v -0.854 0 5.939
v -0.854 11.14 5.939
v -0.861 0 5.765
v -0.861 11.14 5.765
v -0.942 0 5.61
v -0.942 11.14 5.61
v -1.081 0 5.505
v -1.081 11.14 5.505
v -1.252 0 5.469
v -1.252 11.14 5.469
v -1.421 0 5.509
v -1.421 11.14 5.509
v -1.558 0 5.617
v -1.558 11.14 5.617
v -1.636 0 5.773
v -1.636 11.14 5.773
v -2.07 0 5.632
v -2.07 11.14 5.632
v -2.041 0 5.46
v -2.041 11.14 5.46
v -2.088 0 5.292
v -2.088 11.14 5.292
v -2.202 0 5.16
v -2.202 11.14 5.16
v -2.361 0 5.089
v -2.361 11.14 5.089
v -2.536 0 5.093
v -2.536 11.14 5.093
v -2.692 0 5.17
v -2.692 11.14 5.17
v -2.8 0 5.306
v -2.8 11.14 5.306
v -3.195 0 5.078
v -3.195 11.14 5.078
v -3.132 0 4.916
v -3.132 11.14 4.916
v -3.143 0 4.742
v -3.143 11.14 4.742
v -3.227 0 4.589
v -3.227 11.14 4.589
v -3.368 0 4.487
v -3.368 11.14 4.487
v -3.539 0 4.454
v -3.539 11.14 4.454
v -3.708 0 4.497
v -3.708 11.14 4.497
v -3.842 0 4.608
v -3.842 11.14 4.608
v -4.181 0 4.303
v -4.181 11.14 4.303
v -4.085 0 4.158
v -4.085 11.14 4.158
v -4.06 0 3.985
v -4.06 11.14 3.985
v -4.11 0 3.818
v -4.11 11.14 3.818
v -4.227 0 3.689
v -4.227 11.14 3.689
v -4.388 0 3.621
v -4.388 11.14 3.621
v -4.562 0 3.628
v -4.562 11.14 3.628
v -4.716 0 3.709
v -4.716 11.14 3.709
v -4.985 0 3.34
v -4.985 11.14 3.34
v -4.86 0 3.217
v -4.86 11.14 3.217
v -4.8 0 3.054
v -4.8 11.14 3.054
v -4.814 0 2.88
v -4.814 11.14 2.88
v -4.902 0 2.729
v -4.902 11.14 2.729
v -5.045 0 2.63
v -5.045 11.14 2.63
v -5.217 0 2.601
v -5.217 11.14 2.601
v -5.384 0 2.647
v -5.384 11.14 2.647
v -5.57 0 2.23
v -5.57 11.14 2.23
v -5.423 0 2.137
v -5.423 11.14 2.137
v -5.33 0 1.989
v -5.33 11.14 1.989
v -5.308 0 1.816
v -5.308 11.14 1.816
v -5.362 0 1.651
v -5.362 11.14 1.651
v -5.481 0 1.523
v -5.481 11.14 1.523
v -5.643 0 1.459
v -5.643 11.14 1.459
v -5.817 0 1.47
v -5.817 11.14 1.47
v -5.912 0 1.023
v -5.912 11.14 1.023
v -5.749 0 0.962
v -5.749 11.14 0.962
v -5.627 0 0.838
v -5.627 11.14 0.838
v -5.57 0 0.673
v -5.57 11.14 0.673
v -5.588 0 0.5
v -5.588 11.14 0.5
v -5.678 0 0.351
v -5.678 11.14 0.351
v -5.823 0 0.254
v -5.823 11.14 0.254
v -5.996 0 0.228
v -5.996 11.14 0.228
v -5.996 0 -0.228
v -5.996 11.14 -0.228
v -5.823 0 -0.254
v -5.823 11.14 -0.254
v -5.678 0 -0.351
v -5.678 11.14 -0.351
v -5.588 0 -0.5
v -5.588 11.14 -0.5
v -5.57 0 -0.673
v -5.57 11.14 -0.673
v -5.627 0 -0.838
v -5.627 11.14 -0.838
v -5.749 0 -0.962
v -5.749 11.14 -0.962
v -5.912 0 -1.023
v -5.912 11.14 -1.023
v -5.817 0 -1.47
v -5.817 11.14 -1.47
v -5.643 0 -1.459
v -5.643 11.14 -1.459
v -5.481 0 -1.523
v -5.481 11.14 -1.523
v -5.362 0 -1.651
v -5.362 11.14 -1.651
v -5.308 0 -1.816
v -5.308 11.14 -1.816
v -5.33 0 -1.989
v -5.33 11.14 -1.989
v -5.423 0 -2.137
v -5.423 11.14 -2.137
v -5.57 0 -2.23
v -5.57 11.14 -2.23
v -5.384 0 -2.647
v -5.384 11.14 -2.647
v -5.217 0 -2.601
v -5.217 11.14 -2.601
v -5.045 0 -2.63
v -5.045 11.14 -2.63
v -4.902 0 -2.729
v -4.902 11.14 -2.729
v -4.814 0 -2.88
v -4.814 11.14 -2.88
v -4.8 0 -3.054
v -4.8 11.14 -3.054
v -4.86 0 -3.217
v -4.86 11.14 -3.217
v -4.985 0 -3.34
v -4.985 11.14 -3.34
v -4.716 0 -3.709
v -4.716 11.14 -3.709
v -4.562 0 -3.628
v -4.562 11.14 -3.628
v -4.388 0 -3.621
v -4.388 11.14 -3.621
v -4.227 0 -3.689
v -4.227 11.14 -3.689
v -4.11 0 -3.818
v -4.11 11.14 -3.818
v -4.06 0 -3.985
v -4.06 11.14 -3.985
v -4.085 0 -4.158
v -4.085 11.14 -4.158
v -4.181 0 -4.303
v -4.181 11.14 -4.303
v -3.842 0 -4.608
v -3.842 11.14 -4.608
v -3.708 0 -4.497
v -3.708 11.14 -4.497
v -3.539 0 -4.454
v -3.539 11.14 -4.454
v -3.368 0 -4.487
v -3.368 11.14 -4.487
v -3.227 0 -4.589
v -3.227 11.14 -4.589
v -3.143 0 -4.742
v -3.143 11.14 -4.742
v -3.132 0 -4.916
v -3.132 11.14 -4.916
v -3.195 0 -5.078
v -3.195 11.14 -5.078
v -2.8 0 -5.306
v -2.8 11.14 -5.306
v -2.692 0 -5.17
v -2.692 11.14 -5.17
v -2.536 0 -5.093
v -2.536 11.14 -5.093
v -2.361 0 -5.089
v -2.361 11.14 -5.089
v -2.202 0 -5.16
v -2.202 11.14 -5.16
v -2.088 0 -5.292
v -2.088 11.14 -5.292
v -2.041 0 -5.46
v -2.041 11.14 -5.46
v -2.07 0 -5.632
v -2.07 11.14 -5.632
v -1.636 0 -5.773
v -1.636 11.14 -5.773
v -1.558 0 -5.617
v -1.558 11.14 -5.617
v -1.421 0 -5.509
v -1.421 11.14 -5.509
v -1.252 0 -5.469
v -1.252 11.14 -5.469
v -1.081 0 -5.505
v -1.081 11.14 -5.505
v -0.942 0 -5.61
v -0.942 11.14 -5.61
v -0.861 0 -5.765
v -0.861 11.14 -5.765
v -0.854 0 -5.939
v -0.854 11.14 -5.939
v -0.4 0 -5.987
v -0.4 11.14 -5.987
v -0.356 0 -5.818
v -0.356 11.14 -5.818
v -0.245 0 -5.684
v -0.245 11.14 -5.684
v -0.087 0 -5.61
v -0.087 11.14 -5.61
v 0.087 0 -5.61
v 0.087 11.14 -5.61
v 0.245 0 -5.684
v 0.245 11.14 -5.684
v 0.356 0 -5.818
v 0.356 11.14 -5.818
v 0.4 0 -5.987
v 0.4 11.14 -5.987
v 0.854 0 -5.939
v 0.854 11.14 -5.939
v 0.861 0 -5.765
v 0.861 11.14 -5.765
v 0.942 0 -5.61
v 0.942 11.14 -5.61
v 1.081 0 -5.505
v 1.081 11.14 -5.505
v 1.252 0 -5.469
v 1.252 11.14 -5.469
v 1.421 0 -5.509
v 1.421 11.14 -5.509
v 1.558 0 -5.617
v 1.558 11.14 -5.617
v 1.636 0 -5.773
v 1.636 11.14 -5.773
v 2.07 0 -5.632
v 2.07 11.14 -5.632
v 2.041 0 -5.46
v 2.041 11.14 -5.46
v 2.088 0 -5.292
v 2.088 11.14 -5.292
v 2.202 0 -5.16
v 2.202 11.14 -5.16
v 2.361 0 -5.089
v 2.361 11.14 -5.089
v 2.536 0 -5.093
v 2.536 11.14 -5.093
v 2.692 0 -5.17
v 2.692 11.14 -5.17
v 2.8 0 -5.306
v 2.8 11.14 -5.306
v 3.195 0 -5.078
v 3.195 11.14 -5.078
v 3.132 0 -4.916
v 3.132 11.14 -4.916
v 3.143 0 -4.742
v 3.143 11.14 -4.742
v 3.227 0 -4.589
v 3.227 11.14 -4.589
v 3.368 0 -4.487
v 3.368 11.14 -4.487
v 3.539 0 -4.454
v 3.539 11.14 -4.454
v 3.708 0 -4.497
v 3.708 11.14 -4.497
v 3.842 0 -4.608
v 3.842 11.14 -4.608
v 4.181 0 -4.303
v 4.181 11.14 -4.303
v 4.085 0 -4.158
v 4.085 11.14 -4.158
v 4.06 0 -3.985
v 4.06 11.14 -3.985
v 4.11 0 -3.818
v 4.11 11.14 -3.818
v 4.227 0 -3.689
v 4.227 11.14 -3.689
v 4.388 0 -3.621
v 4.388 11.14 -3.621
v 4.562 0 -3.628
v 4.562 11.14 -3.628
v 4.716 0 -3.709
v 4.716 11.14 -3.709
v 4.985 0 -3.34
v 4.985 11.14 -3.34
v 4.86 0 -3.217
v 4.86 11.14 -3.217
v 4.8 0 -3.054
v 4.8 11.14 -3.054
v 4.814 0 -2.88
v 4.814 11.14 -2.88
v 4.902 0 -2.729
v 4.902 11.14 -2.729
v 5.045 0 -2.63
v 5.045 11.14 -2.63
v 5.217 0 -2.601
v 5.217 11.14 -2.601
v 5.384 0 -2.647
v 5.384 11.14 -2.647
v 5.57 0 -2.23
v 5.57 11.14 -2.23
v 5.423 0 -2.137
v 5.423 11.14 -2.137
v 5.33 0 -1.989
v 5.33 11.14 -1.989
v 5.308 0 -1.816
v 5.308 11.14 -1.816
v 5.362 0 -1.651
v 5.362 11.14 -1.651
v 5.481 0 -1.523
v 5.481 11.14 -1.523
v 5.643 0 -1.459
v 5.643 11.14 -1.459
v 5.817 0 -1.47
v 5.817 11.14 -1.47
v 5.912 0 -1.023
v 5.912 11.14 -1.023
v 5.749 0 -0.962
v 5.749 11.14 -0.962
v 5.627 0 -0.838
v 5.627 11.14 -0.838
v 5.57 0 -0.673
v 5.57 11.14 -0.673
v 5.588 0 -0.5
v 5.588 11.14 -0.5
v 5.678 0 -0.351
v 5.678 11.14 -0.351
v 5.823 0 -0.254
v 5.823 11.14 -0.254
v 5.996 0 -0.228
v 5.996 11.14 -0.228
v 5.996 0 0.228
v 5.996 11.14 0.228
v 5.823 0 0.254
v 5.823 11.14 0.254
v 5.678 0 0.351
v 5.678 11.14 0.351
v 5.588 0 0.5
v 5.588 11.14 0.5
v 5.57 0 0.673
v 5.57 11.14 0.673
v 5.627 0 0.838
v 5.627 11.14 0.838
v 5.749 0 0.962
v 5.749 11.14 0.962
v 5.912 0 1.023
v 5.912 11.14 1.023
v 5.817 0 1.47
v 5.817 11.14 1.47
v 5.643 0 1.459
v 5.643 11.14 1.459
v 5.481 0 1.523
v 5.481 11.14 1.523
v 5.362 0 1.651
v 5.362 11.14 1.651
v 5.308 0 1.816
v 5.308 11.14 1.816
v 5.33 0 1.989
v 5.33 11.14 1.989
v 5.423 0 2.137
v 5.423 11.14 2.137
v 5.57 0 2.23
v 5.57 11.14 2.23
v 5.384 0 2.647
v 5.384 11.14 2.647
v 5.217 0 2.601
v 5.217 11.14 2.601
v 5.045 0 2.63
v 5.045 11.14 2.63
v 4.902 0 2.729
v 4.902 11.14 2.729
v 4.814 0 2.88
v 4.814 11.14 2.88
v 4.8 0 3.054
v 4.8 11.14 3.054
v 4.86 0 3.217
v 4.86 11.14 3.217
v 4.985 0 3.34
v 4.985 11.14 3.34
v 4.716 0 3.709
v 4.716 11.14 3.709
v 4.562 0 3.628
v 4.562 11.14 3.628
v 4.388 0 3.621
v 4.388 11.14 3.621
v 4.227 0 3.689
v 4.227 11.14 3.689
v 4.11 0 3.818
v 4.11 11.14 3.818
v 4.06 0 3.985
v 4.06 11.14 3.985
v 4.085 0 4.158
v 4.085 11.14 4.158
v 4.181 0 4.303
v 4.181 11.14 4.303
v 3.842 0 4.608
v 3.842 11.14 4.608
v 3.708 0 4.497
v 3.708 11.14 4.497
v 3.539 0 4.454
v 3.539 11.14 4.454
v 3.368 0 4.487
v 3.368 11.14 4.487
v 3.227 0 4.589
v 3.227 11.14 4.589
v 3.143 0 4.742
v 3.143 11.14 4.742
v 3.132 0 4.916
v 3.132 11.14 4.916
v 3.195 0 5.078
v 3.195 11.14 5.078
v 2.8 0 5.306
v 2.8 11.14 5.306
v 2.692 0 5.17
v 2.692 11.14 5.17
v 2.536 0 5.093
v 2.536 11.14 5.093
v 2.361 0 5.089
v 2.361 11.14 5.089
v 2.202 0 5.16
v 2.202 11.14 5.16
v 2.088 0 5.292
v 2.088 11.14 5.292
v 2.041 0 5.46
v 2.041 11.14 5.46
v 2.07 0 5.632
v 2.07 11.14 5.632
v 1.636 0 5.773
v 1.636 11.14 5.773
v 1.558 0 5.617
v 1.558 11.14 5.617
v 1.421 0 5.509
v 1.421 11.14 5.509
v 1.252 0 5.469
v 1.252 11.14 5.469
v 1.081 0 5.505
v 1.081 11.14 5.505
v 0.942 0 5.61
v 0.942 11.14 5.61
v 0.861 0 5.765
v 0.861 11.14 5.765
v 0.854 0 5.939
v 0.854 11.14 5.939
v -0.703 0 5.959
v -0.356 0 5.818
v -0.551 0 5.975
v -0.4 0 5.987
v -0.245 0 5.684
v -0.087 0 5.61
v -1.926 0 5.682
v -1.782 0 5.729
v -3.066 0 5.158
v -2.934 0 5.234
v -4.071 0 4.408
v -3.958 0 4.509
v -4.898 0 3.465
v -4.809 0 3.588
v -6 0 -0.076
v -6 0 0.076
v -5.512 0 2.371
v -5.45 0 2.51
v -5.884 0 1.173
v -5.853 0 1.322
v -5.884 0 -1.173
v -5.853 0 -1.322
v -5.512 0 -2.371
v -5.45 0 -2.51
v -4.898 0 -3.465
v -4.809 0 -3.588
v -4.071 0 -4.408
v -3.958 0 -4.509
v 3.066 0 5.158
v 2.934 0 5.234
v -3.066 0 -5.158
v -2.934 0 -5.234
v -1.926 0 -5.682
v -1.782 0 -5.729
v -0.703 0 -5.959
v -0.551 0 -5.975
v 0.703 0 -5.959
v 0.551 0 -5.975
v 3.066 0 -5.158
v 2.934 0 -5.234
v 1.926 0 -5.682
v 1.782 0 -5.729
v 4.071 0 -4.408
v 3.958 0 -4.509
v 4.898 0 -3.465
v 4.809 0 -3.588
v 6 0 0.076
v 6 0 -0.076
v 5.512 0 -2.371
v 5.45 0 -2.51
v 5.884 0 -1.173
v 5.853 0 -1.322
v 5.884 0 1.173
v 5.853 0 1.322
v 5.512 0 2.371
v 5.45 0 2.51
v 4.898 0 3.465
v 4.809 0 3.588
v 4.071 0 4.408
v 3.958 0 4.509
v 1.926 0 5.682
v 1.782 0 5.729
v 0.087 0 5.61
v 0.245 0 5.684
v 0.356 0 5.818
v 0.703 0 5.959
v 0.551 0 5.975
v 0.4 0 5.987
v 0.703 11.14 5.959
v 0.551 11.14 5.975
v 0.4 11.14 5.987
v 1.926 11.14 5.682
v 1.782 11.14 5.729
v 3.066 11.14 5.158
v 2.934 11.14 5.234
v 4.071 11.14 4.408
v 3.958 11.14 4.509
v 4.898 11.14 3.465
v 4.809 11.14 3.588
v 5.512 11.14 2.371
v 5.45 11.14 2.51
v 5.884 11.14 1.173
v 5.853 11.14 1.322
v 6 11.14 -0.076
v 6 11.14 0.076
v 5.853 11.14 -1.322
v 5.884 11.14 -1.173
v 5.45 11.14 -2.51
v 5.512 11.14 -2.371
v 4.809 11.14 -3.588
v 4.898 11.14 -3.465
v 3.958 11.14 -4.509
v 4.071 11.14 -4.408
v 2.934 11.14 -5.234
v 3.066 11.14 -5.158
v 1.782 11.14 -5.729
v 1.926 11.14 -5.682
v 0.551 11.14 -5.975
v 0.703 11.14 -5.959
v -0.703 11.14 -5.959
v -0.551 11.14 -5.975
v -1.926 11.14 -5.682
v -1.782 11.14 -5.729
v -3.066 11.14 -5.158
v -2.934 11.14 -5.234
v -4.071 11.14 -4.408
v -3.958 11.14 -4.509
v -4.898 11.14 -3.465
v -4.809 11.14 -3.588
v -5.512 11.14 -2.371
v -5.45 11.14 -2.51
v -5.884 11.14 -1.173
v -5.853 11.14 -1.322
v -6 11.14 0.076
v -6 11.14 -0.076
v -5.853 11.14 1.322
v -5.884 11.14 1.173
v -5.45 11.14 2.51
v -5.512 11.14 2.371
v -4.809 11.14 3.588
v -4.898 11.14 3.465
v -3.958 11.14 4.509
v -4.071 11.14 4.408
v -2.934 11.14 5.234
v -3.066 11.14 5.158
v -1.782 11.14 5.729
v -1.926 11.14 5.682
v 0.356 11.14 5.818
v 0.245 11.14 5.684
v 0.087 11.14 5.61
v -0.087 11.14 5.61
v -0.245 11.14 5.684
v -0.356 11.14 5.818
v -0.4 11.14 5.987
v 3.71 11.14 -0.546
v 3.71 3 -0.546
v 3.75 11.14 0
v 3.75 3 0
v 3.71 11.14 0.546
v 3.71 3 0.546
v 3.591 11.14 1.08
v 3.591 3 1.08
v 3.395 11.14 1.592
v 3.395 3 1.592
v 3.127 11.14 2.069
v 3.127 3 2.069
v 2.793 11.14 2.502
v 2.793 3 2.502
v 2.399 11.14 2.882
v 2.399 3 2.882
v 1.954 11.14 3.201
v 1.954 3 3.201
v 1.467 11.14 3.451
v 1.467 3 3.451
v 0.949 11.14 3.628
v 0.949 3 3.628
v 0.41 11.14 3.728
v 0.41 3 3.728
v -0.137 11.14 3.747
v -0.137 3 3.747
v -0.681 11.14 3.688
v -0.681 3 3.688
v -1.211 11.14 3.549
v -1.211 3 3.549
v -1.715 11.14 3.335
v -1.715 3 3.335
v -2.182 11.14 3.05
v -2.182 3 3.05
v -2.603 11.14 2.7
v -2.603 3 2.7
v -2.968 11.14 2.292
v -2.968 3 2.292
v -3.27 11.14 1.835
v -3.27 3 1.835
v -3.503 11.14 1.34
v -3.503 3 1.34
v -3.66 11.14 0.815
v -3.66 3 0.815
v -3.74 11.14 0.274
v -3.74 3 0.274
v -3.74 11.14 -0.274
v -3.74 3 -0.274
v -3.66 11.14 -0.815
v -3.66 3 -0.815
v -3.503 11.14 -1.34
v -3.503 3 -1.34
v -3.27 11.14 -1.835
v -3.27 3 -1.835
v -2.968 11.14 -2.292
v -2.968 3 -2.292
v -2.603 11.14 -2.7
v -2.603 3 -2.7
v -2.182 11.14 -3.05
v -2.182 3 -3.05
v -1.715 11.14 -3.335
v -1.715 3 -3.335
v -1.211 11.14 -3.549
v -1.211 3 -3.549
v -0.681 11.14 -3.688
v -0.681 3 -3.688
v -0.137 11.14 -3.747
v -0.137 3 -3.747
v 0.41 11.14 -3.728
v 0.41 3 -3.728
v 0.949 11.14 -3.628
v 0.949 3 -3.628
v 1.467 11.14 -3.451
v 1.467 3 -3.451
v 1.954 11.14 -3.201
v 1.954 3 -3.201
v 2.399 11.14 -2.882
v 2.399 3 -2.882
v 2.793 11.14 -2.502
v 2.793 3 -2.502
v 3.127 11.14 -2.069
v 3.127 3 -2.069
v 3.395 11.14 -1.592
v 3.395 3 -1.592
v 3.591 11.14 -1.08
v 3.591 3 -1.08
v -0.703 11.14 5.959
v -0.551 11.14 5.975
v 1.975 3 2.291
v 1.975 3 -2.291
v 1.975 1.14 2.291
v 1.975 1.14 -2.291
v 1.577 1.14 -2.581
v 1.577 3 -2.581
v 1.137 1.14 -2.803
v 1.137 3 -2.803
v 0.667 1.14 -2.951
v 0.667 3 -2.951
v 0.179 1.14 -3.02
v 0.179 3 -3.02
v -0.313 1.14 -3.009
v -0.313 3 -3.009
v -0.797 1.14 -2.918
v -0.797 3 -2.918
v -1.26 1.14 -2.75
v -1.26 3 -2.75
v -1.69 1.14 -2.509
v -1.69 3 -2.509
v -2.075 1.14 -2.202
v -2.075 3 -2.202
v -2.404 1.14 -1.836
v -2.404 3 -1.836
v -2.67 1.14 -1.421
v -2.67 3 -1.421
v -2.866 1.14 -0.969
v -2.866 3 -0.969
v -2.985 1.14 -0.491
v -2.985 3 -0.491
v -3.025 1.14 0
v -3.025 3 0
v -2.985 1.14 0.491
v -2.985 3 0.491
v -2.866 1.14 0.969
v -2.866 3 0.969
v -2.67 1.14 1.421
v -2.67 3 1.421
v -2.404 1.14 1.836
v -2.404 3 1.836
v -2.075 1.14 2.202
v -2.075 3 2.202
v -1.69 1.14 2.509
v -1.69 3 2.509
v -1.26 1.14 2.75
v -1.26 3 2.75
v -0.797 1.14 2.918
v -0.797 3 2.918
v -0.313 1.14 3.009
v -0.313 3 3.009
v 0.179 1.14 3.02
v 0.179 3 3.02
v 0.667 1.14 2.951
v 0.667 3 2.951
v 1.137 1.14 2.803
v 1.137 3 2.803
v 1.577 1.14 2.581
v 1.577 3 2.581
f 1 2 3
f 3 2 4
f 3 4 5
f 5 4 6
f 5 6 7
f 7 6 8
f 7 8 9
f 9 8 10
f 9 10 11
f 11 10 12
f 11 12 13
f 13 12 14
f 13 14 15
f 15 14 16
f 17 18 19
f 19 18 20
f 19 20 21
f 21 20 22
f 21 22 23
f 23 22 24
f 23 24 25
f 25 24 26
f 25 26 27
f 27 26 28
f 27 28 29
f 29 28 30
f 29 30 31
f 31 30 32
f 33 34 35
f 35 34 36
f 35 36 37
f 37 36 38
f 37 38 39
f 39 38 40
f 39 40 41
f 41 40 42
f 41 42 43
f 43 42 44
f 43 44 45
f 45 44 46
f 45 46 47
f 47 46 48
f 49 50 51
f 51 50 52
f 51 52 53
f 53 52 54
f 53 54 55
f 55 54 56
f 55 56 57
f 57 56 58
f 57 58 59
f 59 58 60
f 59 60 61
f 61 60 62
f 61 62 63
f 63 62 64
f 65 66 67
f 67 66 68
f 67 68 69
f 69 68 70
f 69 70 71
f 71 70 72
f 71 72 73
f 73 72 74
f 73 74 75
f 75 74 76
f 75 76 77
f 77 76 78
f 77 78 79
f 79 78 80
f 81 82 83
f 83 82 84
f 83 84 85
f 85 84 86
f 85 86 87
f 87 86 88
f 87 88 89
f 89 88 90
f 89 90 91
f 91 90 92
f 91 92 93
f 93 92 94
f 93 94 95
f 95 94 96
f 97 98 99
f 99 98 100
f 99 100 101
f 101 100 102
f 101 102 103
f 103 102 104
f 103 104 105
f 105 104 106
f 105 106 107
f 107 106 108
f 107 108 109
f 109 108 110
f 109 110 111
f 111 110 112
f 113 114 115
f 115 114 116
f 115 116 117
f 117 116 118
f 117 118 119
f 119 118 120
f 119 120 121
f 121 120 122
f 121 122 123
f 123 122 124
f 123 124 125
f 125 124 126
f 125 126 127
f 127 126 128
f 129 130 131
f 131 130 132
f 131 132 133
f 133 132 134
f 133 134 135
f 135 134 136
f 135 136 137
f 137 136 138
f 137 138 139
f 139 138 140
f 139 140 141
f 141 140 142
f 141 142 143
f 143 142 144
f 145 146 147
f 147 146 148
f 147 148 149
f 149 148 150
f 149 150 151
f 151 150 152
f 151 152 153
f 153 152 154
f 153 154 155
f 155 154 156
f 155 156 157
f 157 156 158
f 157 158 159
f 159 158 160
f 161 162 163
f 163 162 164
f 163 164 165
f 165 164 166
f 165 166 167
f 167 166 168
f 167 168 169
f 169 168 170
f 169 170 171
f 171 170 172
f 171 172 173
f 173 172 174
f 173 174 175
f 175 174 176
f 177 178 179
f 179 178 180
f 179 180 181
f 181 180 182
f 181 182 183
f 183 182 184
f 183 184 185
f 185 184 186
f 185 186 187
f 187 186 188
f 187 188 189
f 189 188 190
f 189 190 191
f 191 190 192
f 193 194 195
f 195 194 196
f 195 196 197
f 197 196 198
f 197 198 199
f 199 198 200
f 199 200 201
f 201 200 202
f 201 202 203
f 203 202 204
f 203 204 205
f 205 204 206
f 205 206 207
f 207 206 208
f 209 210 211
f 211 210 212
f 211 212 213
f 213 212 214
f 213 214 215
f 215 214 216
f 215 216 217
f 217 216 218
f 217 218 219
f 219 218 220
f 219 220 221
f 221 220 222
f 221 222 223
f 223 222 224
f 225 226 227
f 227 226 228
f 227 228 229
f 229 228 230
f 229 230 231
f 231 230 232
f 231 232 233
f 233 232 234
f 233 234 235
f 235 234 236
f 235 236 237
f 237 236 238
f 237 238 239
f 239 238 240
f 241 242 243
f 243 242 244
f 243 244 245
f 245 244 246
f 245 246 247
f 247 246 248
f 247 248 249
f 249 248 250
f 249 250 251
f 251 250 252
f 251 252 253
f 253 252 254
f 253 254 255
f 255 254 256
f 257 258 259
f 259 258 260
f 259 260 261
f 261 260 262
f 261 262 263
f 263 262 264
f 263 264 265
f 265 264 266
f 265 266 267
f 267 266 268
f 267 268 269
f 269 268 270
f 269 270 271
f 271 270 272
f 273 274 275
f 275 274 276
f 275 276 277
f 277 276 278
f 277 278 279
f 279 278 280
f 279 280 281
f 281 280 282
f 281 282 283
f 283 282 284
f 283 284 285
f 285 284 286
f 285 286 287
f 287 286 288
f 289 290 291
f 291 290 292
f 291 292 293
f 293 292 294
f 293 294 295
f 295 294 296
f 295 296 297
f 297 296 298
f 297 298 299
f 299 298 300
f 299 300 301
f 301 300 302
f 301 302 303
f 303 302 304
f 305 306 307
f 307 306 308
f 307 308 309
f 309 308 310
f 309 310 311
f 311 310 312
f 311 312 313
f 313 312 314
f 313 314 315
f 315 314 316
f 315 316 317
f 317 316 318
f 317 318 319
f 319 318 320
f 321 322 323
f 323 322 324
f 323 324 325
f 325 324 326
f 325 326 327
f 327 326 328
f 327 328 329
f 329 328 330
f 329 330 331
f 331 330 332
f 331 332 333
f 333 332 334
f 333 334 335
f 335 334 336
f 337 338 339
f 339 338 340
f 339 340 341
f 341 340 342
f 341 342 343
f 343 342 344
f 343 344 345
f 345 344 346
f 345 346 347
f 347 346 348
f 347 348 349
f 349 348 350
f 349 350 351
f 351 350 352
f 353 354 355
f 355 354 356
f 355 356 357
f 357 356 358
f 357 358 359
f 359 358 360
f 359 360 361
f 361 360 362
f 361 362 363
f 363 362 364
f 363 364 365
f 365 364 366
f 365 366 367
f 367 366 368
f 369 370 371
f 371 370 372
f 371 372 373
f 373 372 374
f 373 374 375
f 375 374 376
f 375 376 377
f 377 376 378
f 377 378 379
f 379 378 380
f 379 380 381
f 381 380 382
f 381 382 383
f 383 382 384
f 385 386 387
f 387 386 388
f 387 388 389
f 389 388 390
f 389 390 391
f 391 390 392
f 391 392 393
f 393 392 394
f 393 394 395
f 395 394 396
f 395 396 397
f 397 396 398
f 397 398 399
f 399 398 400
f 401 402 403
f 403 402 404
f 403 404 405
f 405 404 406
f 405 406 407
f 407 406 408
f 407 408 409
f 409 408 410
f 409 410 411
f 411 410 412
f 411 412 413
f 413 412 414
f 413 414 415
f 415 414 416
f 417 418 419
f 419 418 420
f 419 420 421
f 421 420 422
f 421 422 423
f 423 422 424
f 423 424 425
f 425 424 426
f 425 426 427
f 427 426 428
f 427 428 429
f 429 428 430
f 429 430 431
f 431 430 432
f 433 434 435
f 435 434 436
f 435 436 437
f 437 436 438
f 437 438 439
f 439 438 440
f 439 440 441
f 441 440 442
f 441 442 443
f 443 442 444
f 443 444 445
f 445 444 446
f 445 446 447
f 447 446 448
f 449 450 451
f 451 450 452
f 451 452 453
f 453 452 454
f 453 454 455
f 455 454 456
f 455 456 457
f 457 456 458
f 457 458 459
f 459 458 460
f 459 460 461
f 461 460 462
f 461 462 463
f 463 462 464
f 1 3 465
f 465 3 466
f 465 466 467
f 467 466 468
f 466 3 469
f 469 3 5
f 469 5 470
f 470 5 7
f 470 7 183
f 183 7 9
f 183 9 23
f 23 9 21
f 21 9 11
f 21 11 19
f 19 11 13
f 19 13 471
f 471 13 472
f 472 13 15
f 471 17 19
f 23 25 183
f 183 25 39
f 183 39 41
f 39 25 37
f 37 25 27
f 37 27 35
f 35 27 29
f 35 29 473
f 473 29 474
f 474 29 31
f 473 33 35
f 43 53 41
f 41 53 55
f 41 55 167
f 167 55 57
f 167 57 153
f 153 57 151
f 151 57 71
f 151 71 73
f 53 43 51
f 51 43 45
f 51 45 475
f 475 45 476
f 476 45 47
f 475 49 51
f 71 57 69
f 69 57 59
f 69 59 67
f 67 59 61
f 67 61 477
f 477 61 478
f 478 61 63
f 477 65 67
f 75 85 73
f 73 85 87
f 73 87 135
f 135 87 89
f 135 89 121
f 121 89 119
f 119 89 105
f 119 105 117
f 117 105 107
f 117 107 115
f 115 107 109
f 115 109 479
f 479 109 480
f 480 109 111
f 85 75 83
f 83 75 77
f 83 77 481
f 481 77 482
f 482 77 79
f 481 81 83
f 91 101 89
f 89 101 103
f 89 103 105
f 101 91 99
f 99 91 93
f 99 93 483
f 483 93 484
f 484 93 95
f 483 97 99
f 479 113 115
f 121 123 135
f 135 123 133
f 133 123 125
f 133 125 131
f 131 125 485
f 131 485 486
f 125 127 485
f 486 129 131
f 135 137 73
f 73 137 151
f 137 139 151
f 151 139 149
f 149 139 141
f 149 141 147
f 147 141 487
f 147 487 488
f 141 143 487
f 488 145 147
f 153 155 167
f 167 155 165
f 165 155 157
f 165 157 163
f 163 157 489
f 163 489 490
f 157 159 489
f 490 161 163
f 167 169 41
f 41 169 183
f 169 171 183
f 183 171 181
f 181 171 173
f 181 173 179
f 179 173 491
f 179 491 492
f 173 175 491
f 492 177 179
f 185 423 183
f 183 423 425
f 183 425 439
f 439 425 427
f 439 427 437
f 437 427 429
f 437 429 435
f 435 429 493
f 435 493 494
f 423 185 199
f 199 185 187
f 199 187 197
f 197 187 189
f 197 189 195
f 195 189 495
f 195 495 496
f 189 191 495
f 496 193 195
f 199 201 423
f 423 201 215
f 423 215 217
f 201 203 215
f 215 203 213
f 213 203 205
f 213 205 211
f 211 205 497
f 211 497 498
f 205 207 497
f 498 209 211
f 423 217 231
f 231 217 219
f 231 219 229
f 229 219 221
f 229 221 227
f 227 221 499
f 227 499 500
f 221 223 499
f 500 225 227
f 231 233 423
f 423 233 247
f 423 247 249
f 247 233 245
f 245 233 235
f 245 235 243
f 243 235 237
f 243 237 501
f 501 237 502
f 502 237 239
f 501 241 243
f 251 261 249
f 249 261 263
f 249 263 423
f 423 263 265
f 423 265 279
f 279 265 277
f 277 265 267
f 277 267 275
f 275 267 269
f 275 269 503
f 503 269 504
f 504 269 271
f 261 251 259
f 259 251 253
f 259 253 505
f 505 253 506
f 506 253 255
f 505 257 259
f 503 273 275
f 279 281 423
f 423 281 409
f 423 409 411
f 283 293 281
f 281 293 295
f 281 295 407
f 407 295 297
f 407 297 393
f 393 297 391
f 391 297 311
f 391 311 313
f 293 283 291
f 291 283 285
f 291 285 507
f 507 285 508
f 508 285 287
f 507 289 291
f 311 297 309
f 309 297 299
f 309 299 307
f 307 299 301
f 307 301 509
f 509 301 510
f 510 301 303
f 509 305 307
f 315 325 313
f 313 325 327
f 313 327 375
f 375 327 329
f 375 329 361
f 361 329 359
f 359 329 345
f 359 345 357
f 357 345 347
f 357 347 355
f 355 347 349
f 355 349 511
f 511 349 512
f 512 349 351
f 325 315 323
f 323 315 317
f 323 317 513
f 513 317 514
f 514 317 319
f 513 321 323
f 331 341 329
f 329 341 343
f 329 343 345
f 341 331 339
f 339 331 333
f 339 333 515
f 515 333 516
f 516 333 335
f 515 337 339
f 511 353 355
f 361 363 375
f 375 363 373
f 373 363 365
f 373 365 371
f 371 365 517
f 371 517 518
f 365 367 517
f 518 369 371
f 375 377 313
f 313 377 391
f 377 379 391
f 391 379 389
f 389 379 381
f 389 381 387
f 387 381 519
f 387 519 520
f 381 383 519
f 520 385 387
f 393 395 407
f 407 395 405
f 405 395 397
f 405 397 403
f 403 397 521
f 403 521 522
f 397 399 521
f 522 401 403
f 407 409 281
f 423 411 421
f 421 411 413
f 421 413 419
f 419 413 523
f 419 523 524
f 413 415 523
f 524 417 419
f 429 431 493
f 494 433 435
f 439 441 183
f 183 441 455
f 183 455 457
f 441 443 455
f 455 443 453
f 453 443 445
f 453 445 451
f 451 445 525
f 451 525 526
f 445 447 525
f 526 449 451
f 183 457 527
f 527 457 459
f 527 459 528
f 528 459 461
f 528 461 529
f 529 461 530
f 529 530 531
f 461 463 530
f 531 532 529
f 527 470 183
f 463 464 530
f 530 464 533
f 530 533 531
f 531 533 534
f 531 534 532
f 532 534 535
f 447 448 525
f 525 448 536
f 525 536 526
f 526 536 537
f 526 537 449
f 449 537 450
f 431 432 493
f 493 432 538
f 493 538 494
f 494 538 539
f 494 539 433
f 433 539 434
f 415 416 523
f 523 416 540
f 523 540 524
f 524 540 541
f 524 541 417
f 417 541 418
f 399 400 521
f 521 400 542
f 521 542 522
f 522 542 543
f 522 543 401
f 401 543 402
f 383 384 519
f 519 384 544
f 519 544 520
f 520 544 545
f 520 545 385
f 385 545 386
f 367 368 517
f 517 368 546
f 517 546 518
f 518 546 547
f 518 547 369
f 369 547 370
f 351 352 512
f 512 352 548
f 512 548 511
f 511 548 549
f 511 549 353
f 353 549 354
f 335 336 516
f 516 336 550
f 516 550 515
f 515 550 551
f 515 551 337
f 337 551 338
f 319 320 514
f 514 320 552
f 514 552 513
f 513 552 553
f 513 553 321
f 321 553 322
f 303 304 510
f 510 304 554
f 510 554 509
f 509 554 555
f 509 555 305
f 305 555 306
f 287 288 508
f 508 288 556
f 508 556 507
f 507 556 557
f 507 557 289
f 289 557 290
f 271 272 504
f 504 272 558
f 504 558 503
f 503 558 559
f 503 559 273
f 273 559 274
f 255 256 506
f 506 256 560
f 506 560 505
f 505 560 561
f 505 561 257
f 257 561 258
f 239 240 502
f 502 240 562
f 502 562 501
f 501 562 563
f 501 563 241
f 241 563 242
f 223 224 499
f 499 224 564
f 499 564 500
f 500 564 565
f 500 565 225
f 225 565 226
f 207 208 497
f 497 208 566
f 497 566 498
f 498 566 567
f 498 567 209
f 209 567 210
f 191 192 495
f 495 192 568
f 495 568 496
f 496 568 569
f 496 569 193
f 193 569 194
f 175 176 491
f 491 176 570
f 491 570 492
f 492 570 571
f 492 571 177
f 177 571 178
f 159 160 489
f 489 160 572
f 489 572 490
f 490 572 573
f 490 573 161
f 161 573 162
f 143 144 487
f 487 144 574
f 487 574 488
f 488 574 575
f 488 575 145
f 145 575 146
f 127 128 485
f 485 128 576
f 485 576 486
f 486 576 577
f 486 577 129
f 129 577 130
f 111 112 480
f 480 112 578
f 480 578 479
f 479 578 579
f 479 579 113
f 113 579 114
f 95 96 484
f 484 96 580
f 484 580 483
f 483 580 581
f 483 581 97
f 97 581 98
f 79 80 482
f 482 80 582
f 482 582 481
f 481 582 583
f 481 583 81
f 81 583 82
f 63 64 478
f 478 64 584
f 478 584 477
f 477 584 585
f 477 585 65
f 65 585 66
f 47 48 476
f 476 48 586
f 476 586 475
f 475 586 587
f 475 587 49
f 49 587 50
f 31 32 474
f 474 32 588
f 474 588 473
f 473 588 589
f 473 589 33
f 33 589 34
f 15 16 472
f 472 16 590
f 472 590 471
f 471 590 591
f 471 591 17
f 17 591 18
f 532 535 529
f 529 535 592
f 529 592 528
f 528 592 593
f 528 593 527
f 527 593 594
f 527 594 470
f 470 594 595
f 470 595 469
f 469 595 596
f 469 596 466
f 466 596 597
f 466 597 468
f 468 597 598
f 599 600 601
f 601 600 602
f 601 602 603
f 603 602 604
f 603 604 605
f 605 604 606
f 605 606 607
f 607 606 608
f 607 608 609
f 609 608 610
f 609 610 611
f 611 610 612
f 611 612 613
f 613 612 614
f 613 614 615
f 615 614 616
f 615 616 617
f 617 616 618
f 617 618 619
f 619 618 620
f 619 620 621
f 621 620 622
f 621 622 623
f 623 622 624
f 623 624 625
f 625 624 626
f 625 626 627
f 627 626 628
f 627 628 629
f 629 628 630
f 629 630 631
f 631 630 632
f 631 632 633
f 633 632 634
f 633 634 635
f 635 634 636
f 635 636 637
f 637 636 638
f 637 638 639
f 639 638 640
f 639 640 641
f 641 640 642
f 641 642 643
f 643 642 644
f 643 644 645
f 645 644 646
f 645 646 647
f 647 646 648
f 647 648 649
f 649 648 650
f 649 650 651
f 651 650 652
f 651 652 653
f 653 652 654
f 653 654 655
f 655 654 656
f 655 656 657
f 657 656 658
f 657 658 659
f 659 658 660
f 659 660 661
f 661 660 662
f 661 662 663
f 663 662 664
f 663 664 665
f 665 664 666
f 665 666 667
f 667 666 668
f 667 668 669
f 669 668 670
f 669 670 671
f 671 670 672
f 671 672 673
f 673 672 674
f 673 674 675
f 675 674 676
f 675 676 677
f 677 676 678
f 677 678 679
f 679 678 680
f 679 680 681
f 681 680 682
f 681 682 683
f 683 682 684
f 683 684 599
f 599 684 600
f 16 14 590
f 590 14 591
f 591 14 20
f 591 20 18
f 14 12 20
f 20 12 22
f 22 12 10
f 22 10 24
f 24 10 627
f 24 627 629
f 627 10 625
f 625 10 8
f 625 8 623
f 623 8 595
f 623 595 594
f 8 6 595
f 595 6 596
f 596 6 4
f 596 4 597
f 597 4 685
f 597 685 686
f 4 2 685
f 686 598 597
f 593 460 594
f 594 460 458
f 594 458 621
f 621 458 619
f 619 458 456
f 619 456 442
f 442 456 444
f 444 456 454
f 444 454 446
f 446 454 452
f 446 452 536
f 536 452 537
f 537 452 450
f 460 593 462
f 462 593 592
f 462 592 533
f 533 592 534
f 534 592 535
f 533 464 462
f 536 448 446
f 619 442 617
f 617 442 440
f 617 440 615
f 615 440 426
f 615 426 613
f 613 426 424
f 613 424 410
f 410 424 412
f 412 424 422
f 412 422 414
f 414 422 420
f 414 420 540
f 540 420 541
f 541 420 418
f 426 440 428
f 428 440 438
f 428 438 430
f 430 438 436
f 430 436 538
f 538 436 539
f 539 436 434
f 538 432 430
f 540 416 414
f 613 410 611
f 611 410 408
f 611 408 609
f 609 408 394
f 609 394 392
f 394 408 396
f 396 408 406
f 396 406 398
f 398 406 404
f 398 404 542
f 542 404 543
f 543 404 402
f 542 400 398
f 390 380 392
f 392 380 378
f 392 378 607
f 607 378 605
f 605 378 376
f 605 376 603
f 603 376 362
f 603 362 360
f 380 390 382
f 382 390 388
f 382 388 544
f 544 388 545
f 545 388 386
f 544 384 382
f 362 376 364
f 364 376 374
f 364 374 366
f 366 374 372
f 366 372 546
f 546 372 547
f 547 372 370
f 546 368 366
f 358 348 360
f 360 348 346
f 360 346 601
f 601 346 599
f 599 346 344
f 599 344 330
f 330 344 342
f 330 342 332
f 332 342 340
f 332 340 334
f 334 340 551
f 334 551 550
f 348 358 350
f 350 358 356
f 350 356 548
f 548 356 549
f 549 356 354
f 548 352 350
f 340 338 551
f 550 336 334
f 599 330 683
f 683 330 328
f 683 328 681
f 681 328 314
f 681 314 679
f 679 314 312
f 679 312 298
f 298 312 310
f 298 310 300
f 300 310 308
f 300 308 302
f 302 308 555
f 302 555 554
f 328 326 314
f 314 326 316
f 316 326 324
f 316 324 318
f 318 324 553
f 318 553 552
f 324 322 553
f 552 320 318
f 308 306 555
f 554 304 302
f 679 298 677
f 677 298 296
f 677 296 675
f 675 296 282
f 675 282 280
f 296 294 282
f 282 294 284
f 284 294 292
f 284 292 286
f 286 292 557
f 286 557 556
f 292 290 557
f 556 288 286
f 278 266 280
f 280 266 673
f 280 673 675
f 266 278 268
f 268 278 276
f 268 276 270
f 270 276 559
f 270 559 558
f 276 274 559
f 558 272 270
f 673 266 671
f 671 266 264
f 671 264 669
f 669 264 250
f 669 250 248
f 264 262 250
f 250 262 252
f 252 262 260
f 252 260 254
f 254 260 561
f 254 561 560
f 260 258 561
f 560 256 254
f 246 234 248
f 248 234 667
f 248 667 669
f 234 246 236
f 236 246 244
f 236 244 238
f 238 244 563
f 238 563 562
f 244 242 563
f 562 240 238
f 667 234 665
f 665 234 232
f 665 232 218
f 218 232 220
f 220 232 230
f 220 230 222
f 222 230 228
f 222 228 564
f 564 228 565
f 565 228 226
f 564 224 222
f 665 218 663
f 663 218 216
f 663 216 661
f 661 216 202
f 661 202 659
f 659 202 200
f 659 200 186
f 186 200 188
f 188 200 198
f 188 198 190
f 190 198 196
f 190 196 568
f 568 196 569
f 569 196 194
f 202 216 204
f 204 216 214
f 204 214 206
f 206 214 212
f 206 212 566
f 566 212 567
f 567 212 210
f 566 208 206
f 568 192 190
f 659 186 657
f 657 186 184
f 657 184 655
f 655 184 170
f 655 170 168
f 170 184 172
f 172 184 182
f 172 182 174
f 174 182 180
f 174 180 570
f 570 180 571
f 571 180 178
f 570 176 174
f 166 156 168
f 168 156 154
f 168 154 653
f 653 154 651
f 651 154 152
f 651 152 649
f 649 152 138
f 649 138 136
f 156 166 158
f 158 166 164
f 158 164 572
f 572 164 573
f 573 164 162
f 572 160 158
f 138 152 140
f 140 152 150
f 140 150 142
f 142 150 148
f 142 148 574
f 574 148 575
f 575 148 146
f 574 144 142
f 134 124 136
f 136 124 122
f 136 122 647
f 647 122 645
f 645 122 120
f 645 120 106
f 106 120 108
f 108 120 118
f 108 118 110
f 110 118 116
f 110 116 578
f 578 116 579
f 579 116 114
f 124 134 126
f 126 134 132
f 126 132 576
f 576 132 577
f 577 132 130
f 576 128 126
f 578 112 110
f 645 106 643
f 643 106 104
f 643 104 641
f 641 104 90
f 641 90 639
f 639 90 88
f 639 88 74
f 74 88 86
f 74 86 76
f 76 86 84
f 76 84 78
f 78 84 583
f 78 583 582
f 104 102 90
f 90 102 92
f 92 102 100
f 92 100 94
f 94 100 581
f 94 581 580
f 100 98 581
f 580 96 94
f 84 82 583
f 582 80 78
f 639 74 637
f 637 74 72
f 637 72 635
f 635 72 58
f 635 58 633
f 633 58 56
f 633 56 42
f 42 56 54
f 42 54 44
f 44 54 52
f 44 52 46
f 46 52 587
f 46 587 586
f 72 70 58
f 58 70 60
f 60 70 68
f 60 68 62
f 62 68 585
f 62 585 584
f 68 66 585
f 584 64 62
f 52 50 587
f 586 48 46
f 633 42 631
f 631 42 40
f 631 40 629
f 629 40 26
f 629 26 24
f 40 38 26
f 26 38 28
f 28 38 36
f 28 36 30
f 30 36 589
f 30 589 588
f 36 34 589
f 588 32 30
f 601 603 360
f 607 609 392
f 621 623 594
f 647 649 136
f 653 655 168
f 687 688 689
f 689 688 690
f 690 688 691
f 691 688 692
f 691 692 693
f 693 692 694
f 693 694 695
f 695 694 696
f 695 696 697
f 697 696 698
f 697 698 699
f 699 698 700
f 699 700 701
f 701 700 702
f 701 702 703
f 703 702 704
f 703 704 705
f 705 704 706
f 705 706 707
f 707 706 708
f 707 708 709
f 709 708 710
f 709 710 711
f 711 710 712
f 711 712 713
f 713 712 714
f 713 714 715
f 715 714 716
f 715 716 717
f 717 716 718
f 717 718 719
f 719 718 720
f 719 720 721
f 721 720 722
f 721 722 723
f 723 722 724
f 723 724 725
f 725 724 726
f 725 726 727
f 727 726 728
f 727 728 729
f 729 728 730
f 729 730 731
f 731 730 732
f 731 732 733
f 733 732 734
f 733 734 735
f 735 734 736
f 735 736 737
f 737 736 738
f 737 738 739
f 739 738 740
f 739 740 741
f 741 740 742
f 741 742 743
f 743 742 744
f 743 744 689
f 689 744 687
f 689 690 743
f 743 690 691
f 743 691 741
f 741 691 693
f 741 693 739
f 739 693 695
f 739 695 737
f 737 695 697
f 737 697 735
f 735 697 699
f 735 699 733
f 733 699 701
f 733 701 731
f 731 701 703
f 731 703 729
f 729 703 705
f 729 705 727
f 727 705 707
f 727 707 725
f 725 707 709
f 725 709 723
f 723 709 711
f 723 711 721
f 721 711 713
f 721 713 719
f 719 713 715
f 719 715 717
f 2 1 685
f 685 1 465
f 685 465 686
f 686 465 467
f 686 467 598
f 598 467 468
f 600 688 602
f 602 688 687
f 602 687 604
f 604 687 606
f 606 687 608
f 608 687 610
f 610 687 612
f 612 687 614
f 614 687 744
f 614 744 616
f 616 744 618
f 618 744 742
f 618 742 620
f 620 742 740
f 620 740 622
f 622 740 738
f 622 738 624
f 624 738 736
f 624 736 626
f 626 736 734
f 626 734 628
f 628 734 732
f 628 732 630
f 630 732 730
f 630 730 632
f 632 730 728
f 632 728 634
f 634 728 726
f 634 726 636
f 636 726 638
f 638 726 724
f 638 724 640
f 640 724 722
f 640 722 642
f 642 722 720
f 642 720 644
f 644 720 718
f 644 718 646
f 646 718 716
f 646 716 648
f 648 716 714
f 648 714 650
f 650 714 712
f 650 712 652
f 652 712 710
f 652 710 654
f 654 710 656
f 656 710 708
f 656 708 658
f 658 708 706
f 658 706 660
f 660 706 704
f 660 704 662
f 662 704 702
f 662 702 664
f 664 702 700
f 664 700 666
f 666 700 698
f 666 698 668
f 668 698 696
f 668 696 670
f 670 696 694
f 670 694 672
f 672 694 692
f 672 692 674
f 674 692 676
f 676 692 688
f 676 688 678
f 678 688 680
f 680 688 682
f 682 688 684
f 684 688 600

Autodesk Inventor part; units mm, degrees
ref_plane "YZ Plane" through (0, 0, 0) normal (1, 0, 0) x (0, 1, 0)
ref_plane "XZ Plane" through (0, 0, 0) normal (0, 1, 0) x (-1, 0, 0)
ref_plane "XY Plane" through (0, 0, 0) normal (0, 0, 1) x (1, 0, 0)
sketch "Sketch1" plane through (0, 0, 0) normal (0, 1, 0) x (-1, 0, 0)
  circle A0 centre (0, 0) radius 6
  dimension "d0" = 12
extrude "Extrusion1" add sketch "Sketch1" along normal blind 3
sketch "Sketch2" plane through (0, 3, 0) normal (0, 1, 0) x (1, 0, 0)
  circle A0 centre (0, 0) radius 3.025
  line L0 (1.975, -3) -> (1.975, 3)
  line L1 (-3.025, 0) -> (1.975, 0)
  point P0 (1.975, 2.2913)
  point P1 (1.975, -2.2913)
  dimension "d3" = 6.05
  dimension "d4" = 5
extrude "Extrusion2" cut sketch "Sketch2" against normal blind 1.86 contours L0 L1 A0 | A0 L1 L0
sketch "Sketch4" plane through (0, 3, 0) normal (0, 1, 0) x (1, 0, 0)
  circle A0 centre (0, 0) radius 3.75
  circle A1 centre (0, 0) radius 6
  dimension "d15" = 7.5
  dimension "d16" = 12
extrude "Extrusion4" add sketch "Sketch4" along normal blind 8.14
sketch "Sketch5" plane through (0, 0, 0) normal (0, -1, 0) x (1, 0, 0)
  circle A0 centre (0, 0) radius 6 projected
  circle A1 centre (0, 6) radius 0.4
  dimension "d17" = 0.8
extrude "Extrusion5" cut sketch "Sketch5" against normal through all contours A1 A0 | A0 A1 picked at (-0.0157, 5.8666) picked at (0.014, 6.1316)
pattern_circular "Circular Pattern2" count 30 over 360 about axis through (0, 0, 0) along (0, 1, 0) of "Extrusion5"
properties part number "Knob Rotory Encoder"
